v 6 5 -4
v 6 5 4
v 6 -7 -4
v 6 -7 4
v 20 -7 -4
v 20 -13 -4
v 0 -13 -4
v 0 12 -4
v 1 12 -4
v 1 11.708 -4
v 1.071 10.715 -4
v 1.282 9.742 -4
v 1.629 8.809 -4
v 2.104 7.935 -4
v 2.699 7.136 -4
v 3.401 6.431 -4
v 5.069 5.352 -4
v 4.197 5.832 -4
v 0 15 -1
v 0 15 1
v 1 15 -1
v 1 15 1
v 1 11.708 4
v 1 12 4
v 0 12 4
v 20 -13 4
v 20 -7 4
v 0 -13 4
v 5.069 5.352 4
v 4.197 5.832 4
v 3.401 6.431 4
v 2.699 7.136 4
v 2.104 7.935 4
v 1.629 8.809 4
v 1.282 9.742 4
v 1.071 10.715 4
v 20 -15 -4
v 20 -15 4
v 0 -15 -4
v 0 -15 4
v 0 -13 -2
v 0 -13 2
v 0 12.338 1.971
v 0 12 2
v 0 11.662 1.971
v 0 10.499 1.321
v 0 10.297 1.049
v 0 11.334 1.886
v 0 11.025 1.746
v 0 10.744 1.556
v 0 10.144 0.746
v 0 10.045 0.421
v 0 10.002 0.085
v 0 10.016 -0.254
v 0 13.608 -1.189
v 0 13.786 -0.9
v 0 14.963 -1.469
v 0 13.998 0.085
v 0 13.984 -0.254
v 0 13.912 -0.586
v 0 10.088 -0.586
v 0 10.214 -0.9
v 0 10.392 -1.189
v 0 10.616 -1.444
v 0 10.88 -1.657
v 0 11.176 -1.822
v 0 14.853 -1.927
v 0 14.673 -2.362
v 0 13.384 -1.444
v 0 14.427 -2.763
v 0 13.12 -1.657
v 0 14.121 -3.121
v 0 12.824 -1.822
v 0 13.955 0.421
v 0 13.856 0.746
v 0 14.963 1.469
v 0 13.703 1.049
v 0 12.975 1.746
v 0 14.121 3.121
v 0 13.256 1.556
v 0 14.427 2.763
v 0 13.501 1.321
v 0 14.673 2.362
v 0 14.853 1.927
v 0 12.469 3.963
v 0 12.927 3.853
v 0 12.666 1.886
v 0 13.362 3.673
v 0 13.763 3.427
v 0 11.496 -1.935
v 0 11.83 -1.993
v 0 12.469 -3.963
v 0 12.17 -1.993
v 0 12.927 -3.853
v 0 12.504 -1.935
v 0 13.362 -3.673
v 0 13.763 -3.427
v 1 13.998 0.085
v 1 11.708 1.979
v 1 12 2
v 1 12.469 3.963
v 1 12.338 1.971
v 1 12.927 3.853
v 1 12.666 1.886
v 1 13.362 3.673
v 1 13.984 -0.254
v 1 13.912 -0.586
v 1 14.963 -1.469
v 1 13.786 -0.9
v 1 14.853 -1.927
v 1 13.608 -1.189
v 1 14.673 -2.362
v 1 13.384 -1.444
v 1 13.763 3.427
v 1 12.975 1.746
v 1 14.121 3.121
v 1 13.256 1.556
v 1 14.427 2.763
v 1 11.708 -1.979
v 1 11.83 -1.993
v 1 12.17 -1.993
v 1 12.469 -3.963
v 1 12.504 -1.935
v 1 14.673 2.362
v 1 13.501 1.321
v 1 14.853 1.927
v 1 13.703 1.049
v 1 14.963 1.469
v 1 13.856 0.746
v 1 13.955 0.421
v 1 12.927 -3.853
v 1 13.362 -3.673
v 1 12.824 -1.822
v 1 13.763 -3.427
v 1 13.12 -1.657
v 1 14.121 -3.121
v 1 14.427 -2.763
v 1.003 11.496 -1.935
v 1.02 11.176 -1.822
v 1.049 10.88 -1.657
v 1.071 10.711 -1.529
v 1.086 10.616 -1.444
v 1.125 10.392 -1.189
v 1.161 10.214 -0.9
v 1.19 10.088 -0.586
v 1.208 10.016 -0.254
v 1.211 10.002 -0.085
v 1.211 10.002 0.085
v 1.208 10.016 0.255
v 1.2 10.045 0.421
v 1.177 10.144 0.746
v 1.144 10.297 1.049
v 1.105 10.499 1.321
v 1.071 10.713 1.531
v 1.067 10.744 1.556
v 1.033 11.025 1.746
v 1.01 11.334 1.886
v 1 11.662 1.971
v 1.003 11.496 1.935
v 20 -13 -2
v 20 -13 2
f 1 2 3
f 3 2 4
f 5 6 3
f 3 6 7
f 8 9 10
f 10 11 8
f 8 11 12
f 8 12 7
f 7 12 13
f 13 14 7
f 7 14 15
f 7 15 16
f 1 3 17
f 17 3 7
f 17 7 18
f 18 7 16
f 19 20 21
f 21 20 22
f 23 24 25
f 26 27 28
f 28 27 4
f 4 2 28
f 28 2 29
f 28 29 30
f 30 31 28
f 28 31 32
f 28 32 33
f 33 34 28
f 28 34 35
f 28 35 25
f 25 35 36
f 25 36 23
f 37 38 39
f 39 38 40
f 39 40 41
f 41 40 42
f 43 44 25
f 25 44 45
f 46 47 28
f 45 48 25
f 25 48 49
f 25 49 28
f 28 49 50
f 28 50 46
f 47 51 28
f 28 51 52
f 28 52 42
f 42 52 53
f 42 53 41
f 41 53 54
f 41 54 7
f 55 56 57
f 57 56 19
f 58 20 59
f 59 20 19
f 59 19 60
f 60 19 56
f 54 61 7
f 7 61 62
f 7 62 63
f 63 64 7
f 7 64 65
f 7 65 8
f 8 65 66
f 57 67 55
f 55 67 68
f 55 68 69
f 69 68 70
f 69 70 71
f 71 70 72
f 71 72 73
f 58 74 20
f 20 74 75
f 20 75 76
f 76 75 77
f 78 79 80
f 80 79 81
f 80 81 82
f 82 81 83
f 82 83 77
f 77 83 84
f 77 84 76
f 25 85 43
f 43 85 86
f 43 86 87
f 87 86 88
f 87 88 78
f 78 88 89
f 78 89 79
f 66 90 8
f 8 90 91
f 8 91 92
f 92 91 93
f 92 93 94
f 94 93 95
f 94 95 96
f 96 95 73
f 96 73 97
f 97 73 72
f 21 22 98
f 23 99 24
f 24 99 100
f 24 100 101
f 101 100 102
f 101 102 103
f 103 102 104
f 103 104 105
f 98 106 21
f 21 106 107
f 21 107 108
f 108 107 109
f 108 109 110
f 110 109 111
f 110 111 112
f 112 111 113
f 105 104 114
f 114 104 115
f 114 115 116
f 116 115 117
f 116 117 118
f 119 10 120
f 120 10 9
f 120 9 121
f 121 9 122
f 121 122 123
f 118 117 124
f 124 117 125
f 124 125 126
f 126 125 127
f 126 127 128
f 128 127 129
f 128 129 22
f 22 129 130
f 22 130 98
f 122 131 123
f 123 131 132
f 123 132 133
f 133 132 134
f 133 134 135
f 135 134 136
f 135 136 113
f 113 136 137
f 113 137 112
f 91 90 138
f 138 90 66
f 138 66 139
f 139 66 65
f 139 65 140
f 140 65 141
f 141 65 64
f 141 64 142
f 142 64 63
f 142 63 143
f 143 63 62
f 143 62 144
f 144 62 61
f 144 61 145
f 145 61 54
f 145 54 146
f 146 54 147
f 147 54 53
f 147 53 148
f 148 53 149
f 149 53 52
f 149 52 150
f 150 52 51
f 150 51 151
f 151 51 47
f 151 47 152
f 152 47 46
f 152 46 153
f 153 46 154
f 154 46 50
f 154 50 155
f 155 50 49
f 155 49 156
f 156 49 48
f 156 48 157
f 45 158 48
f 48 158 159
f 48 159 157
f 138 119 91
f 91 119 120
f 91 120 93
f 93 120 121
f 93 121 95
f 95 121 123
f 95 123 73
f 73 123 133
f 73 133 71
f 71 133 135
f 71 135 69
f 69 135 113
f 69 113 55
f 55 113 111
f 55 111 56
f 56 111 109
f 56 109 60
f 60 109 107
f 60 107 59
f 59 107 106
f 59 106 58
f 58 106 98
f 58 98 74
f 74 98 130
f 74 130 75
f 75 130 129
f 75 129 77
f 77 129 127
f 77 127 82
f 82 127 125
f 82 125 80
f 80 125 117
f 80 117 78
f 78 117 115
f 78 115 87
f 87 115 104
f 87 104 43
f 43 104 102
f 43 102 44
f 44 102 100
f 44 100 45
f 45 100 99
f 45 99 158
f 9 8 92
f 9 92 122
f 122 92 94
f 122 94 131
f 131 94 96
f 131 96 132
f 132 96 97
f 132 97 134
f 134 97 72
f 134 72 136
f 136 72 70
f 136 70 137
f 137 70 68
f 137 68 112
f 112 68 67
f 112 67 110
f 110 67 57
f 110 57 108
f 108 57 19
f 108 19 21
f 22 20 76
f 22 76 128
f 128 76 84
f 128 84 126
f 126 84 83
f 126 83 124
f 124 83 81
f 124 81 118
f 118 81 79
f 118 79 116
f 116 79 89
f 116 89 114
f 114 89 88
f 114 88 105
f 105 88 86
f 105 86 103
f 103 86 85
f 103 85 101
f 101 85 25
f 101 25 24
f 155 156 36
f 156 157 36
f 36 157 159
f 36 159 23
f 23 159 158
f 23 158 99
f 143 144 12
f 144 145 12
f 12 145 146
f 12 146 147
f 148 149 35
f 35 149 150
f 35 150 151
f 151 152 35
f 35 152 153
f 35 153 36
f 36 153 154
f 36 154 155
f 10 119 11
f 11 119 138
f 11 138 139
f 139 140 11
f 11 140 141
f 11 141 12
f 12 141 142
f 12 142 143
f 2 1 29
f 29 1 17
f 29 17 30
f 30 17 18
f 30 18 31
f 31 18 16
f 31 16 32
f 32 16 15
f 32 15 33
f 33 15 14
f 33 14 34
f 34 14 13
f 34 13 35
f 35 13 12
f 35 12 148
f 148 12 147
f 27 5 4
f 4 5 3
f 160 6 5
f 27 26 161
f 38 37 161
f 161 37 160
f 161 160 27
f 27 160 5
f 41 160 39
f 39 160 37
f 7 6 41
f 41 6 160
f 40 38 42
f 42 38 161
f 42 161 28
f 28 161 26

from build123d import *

# Parameters (mm, degrees)
SKETCH1_W           = 8
SKETCH1_H           = 30
BOSS_EXTRUDE1_DEPTH = 6
SKETCH2_W           = 8
SKETCH2_H           = 10
CUT_EXTRUDE1_DEPTH  = 5
CUT_EXTRUDE2_REACH  = 18.643
SKETCH3_R           = 2
FILLET1_R           = 3
FILLET2_R           = 7
SKETCH4_W           = 8
SKETCH4_H           = 8
BOSS_EXTRUDE2_DEPTH = 14
CUT_EXTRUDE4_REACH  = 27.318


with BuildPart() as part:
    # Sketch1 → Boss-Extrude1 (new body)
    with BuildSketch(Plane(origin=(0, 0, 0), x_dir=(0, 0, -1), z_dir=(1, 0, 0))):
        Rectangle(SKETCH1_W, SKETCH1_H)
    extrude(amount=BOSS_EXTRUDE1_DEPTH)

    # Sketch2 → Cut-Extrude1 (cut)
    with BuildSketch(Plane(origin=(6, 0, 0), x_dir=(0, 0, -1), z_dir=(1, 0, 0))):
        with Locations((0, 10)):
            Rectangle(SKETCH2_W, SKETCH2_H)
    extrude(amount=-CUT_EXTRUDE1_DEPTH, mode=Mode.SUBTRACT)

    # Sketch3 → Cut-Extrude2 (cut, up to next)
    with BuildSketch(Plane.ZY, mode=Mode.PRIVATE) as cut_extrude2_sk1:
        with Locations((0, 12)):
            Circle(SKETCH3_R)
    cut_extrude2_tool1 = extrude(cut_extrude2_sk1.sketch, amount=-CUT_EXTRUDE2_REACH, mode=Mode.PRIVATE) & part.part
    add(cut_extrude2_tool1.solids().sort_by_distance((0, 12, 0))[0], mode=Mode.SUBTRACT)

    # Fillet1
    fillet1_edges = [part.edges().sort_by_distance(p)[0] for p in [
        (0.5, 15, 4),
        (0.5, 15, -4),
    ]]
    fillet(fillet1_edges, radius=FILLET1_R)

    # Fillet2
    # the kernel refuses this fillet: 7 mm, written as the material it adds along each edge
    with BuildSketch(Plane(origin=(1, 5, 4), x_dir=(0, 1, 0), z_dir=(0, 0, -1))) as fillet2_piece_1_section:
        with BuildLine():
            CenterArc((6.708203932, 7), FILLET2_R, 196.601549599, 73.398450401)
            Line((0, 5), (0, 0))
            Line((0, 0), (6.708203932, 0))
        make_face()
    fillet2_piece_1 = extrude(amount=8, mode=Mode.PRIVATE)
    fillet2_piece_1 = fillet2_piece_1 - Plane(origin=(1, 12, 0), x_dir=(0, 0, 1), z_dir=(-1, 0, 0)) * Cylinder(2, 43, mode=Mode.PRIVATE)
    add(fillet2_piece_1)

    # Sketch4 → Boss-Extrude2 (add)
    with BuildSketch(Plane(origin=(6, 0, 0), x_dir=(0, 0, -1), z_dir=(1, 0, 0))):
        with Locations((0, -11)):
            Rectangle(SKETCH4_W, SKETCH4_H)
    extrude(amount=BOSS_EXTRUDE2_DEPTH)

    # Sketch6 → Cut-Extrude4 (cut, up to next)
    with BuildSketch(Plane.ZY, mode=Mode.PRIVATE) as cut_extrude4_sk1:
        Polygon((4, -15), (4, -13), (2, -13), align=None)
    cut_extrude4_tool1 = extrude(cut_extrude4_sk1.sketch, amount=-CUT_EXTRUDE4_REACH, mode=Mode.PRIVATE) & part.part
    # Sketch6 → Cut-Extrude4 (cut, up to next)
    with BuildSketch(Plane.ZY, mode=Mode.PRIVATE) as cut_extrude4_sk2:
        Polygon((-4, -15), (-4, -13), (-2, -13), align=None)
    cut_extrude4_tool2 = extrude(cut_extrude4_sk2.sketch, amount=-CUT_EXTRUDE4_REACH, mode=Mode.PRIVATE) & part.part
    add(cut_extrude4_tool1.solids().sort_by_distance((0, -13.666667, 3.333333))[0], mode=Mode.SUBTRACT)
    add(cut_extrude4_tool2.solids().sort_by_distance((0, -13.666667, -3.333333))[0], mode=Mode.SUBTRACT)


solid = part.part
